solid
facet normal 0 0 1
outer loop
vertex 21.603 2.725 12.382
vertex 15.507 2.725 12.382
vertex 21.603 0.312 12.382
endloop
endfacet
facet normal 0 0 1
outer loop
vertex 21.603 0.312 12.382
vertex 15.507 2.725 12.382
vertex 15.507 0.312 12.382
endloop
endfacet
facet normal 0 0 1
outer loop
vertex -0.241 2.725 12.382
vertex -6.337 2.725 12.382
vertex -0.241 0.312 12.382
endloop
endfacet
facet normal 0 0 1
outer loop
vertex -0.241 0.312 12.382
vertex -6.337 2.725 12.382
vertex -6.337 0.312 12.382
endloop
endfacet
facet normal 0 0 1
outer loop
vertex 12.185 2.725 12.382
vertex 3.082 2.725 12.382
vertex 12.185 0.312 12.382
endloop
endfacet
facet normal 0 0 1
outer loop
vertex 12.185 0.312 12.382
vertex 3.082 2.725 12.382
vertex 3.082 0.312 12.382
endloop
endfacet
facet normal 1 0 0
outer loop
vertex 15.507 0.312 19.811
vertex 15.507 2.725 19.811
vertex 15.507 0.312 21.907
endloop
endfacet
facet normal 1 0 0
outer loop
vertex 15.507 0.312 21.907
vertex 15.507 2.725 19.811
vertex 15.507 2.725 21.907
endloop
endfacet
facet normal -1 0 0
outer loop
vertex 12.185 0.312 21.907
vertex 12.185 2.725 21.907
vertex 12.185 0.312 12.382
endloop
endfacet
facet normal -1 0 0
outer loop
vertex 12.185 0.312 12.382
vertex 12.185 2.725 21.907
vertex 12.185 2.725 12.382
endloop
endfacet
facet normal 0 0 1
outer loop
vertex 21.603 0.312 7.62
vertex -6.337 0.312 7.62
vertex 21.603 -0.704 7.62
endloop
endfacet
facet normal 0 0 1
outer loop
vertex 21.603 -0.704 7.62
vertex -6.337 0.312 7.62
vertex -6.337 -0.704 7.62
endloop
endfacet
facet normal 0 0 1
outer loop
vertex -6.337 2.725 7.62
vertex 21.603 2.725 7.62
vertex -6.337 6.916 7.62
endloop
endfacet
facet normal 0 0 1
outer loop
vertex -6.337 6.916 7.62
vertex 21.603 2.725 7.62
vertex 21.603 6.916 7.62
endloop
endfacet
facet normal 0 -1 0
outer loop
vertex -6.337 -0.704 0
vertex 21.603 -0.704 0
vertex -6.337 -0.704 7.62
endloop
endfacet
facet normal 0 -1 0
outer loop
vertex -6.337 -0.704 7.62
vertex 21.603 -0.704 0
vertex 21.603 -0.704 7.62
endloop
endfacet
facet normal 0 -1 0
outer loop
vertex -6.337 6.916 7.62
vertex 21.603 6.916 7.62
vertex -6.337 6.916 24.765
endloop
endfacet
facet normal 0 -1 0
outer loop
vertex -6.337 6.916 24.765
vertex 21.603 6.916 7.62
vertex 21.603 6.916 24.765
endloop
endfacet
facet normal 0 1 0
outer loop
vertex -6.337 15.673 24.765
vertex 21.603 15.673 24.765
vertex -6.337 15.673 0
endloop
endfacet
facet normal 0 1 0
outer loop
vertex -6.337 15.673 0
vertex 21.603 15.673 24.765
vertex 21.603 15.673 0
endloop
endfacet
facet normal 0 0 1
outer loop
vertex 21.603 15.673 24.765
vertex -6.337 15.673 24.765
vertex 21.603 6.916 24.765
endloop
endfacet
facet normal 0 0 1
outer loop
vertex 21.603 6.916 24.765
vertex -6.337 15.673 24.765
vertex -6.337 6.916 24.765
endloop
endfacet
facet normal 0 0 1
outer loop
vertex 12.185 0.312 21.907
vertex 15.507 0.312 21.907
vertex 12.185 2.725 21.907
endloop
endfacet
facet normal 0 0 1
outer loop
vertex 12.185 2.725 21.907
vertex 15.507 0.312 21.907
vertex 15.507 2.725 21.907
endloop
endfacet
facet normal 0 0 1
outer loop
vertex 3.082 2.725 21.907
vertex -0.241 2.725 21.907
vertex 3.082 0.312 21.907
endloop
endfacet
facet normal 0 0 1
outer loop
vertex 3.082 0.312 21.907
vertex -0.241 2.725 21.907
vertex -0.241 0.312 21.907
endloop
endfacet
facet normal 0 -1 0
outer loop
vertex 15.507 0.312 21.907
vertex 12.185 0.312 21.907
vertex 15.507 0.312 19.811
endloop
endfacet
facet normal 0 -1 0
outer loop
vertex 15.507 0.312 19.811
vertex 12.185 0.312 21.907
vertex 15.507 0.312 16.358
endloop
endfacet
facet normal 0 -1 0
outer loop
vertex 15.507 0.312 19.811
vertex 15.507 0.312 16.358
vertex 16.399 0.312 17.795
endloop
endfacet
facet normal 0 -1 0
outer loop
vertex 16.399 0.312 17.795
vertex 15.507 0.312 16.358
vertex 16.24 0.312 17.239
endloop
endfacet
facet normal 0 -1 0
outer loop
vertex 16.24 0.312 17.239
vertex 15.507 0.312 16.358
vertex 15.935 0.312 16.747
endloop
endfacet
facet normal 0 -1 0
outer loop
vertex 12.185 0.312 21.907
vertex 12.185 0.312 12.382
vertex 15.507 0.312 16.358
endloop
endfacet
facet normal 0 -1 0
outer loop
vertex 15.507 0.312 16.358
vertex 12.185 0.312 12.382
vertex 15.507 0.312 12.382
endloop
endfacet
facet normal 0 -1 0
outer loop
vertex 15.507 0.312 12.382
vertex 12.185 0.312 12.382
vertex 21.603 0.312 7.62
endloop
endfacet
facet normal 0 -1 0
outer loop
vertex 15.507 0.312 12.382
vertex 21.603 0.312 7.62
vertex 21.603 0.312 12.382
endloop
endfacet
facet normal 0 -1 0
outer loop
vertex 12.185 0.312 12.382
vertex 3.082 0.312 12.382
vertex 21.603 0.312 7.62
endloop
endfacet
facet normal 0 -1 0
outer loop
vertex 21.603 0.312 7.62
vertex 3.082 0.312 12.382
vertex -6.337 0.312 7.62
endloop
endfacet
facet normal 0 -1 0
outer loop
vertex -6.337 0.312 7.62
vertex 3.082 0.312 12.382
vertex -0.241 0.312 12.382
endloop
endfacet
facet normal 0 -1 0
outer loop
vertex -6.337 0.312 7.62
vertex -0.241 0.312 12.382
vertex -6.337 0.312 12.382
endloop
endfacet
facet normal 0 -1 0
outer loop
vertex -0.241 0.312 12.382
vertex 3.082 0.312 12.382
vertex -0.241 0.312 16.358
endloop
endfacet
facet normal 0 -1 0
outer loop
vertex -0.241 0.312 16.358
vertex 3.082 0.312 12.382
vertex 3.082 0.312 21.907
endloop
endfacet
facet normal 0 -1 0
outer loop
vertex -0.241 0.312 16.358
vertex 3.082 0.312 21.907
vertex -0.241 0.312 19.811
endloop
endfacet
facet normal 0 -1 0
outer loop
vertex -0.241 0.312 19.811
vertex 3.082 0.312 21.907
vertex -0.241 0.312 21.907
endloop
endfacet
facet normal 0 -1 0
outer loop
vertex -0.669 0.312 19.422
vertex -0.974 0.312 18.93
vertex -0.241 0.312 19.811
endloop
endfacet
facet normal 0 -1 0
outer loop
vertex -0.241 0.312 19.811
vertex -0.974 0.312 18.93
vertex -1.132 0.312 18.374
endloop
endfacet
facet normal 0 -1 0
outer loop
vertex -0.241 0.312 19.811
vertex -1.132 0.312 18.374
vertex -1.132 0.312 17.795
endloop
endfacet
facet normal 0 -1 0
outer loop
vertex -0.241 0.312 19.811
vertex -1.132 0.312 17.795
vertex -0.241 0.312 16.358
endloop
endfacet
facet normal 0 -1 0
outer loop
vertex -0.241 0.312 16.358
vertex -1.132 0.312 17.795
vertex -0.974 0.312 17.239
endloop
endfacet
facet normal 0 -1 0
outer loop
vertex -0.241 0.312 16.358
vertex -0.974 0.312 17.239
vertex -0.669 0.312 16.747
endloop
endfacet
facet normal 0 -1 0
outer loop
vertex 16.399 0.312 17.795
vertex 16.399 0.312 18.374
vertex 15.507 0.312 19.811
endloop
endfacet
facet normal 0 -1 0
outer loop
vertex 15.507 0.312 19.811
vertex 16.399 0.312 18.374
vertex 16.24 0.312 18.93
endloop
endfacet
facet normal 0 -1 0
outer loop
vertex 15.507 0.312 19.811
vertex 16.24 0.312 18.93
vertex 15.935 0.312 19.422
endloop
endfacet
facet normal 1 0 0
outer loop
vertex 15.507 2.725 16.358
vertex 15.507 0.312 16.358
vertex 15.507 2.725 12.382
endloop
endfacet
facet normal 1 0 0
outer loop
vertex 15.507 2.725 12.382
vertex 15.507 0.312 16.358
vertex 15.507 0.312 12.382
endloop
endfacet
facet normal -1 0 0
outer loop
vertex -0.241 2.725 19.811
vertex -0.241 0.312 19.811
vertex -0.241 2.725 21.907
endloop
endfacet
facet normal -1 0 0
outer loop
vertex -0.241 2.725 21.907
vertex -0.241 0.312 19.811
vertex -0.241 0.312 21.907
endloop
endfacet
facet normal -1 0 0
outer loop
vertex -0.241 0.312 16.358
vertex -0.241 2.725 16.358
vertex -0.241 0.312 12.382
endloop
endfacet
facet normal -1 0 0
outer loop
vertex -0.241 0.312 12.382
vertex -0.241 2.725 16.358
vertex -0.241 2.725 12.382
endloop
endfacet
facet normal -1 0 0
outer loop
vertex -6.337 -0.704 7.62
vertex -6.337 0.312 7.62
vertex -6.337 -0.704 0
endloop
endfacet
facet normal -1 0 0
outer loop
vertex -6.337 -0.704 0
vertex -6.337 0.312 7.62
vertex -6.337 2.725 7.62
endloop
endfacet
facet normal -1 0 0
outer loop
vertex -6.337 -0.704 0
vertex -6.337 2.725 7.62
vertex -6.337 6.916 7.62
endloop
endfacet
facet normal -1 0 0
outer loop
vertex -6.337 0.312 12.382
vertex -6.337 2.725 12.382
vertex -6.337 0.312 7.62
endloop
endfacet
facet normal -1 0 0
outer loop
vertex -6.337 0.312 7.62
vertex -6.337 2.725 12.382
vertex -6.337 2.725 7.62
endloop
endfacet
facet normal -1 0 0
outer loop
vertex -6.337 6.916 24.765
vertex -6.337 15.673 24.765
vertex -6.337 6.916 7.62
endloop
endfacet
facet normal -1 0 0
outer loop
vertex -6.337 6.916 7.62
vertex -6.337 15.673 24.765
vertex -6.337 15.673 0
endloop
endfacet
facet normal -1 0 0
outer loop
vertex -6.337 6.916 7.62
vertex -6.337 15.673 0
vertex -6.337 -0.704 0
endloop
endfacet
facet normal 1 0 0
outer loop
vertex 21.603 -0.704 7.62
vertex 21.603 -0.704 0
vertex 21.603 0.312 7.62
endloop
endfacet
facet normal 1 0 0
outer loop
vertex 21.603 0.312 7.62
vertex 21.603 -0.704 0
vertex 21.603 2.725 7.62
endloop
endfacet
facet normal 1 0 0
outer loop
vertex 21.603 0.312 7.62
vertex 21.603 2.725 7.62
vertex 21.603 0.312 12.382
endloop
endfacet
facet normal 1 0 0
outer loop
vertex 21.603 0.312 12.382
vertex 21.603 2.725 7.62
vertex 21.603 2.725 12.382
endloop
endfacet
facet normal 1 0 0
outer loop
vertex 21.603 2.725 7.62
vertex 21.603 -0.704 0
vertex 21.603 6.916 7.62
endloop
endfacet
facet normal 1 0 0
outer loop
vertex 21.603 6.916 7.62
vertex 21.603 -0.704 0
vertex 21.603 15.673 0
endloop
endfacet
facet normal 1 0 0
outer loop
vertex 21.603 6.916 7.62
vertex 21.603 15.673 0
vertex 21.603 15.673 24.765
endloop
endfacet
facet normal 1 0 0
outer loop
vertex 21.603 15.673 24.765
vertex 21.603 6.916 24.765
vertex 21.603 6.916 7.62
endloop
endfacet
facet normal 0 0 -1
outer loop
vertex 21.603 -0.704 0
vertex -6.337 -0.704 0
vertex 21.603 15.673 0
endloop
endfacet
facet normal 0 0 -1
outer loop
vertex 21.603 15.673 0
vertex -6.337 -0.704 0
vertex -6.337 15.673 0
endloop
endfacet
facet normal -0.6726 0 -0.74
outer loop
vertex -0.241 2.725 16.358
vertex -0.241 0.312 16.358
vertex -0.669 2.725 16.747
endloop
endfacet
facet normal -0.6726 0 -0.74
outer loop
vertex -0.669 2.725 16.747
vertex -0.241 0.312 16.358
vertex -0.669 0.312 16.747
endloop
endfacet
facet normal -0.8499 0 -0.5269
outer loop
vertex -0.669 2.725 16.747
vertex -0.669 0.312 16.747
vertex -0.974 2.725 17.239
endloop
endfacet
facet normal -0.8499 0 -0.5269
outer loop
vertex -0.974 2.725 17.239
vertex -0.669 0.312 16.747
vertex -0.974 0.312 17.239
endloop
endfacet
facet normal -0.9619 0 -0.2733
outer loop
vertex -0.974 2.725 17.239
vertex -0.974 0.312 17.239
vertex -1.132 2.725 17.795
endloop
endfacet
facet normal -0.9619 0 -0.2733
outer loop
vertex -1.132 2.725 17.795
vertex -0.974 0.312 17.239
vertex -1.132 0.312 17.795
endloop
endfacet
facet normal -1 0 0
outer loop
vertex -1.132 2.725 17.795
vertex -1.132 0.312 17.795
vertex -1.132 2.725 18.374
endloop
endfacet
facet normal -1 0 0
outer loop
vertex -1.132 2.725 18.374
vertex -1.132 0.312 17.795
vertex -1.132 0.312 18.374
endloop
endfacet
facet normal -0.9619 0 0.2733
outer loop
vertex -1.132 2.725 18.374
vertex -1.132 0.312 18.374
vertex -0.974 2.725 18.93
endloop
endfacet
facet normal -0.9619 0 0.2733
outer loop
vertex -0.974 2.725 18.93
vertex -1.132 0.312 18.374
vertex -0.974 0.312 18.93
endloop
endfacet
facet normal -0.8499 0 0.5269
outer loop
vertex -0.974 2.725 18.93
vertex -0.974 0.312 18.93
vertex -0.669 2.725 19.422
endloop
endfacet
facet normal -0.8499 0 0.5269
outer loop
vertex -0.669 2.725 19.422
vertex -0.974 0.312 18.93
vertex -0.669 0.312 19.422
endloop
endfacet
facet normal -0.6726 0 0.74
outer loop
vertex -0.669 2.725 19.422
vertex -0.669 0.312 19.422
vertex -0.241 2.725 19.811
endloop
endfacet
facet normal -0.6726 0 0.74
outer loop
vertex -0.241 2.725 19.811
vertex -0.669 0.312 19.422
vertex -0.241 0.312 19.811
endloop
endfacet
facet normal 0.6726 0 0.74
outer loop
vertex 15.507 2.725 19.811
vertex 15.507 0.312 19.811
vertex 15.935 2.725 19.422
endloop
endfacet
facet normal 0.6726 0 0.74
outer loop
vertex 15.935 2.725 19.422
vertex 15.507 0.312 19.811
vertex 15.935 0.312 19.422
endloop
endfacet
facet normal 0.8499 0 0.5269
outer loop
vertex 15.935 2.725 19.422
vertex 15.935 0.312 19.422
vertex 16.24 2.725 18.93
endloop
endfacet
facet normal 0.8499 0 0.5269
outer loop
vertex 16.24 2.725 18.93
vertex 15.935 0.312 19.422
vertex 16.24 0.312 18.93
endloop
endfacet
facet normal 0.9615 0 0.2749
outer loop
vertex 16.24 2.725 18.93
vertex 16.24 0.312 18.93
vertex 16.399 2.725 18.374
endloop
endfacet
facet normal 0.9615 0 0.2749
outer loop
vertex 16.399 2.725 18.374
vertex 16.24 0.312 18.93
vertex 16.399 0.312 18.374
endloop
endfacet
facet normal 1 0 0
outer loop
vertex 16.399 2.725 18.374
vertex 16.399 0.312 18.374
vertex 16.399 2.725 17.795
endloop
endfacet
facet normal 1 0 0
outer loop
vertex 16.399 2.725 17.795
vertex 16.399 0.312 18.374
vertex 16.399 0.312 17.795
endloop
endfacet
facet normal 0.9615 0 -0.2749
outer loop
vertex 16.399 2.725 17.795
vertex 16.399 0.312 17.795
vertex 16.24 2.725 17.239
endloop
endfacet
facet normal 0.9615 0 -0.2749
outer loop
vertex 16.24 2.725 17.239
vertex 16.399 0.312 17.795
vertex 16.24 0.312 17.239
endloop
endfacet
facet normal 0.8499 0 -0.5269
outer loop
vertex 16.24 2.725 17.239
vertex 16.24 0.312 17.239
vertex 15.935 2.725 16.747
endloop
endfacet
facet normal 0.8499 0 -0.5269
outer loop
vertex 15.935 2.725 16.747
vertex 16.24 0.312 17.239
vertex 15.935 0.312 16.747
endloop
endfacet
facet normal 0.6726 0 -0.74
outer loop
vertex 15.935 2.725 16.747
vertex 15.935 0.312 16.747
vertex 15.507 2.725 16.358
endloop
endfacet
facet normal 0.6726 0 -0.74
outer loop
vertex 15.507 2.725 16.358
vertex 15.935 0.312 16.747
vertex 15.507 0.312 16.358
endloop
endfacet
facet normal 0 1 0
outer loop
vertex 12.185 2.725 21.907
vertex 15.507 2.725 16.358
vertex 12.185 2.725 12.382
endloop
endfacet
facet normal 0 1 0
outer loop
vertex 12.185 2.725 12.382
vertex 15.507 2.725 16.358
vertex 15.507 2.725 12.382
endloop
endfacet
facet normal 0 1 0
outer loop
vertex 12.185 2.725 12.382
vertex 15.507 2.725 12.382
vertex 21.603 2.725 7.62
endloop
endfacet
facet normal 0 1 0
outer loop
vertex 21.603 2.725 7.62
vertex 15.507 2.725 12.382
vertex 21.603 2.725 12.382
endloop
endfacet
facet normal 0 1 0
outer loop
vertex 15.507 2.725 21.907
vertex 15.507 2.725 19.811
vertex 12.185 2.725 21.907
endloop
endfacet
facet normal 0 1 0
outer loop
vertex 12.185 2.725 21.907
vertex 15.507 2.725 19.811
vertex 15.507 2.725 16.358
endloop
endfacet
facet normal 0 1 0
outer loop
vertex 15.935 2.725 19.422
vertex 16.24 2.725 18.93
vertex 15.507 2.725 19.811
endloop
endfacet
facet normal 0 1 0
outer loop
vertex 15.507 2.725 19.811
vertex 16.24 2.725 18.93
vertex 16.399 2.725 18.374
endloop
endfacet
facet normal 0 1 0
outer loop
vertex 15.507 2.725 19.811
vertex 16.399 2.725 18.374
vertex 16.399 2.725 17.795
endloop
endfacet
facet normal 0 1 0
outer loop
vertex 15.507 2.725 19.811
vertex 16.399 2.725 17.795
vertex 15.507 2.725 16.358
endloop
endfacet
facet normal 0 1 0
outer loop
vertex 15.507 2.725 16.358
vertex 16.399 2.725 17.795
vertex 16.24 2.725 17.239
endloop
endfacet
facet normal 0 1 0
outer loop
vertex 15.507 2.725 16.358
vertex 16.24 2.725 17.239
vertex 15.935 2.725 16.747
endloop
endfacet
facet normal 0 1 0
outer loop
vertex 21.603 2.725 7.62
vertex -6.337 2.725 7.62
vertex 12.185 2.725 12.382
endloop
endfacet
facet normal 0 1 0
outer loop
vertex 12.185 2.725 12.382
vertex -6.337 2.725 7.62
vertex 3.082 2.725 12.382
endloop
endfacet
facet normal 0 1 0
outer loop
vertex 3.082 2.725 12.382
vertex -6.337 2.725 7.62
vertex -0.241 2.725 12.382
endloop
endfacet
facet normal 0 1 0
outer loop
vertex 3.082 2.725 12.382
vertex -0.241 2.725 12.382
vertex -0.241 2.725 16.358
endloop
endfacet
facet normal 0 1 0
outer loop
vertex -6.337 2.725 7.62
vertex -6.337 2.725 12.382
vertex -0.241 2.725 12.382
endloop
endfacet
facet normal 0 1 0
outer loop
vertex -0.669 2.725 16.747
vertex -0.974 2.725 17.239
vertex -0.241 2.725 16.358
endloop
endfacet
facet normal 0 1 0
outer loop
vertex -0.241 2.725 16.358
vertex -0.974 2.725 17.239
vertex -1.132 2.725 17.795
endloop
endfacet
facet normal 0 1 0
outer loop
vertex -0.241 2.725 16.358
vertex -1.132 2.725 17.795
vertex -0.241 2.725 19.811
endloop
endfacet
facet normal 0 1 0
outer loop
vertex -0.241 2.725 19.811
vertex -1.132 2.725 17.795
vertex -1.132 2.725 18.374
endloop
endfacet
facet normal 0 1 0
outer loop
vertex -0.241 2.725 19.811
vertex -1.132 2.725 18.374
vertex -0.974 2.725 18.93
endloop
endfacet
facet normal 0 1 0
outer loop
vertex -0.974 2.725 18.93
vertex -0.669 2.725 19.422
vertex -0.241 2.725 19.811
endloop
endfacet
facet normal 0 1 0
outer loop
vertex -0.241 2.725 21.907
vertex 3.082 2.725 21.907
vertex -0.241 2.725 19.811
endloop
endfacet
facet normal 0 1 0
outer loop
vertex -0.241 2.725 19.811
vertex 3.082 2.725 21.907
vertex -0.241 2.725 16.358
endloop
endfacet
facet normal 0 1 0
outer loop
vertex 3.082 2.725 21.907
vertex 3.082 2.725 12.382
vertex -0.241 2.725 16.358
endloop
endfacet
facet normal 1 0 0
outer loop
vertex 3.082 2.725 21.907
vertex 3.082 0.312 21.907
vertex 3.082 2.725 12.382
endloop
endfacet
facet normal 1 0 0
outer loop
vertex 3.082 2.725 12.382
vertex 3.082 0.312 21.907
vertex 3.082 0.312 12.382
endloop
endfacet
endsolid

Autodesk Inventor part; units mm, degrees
ref_plane "YZ Plane" through (0, 0, 0) normal (1, 0, 0) x (0, 1, 0)
ref_plane "XZ Plane" through (0, 0, 0) normal (0, 1, 0) x (-1, 0, 0)
ref_plane "XY Plane" through (0, 0, 0) normal (0, 0, 1) x (1, 0, 0)
sketch "Sketch1" plane through (0, 0, 0) normal (0, 0, 1) x (1, 0, 0)
  line L0 (-6.3366, 6.9163) -> (21.6034, 6.9163)
  line L1 (21.6034, 6.9163) -> (21.6034, -8.3237)
  line L2 (21.6034, -8.3237) -> (-6.3366, -8.3237)
  line L3 (-6.3366, -8.3237) -> (-6.3366, 6.9163)
  point P0 (0, 0)
  dimension "d0" = 27.94
  dimension "d1" = 15.24
extrude "Extrusion1" add sketch "Sketch1" along normal blind 7.62
sketch "Sketch2" plane through (0, 0, 7.62) normal (0, 0, 1) x (1, 0, 0)
  line L0 (-6.3366, 6.9163) -> (-6.3366, -8.3237) projected
  line L1 (21.6034, -8.3237) -> (21.6034, 6.9163) projected
  line L2 (21.6034, 0.3123) -> (21.6034, 2.7253)
  line L3 (-6.3366, 2.7253) -> (-6.3366, 0.3123)
  line L4 (21.6034, 6.9163) -> (-6.3366, 6.9163) projected
  line L5 (-6.3366, -8.3237) -> (21.6034, -8.3237) projected
  line L6 (0.9631, 2.7253) -> (-0.2406, 2.7253)
  line L7 (-0.2406, 0.3123) -> (0.9631, 0.3123)
  line L8 (-0.2406, 0.3123) -> (-0.2406, 2.7253)
  line L9 (-0.2406, 0.3123) -> (3.0821, 0.3123)
  line L10 (3.0821, 0.3123) -> (3.0821, 2.7253)
  line L11 (3.0821, 2.7253) -> (-0.2406, 2.7253)
  line L12 (-0.2406, 2.7253) -> (-0.2406, 0.3123)
  line L13 (14.3038, 2.7253) -> (15.5074, 2.7253)
  line L14 (15.5074, 0.3123) -> (14.3038, 0.3123)
  line L15 (15.5074, 0.3123) -> (15.5074, 2.7253)
  line L16 (15.5074, 0.3123) -> (12.1847, 0.3123)
  line L17 (12.1847, 0.3123) -> (12.1847, 2.7253)
  line L18 (12.1847, 2.7253) -> (15.5074, 2.7253)
  line L19 (15.5074, 2.7253) -> (15.5074, 0.3123)
  line L20 (-6.3366, -0.7037) -> (21.6034, -0.7037)
  line L21 (-6.3366, 2.7253) -> (21.6034, 2.7253)
  line L22 (21.6034, 2.7253) -> (21.6034, 0.3123)
  line L23 (21.6034, 0.3123) -> (-6.3366, 0.3123)
  line L24 (-6.3366, 0.3123) -> (-6.3366, 2.7253)
  point P0 (0, 0)
  point P1 (-0.2406, 1.5188)
  point P2 (15.2669, 0)
  point P3 (15.5074, 1.5188)
  dimension "d6" = 6.096
extrude "Extrusion2" add sketch "Sketch2" along normal blind 8.7376 contours L6 L11 L10 L9 L7 L8 | L15 L14 L16 L17 L18 L13
sketch "Sketch3" plane through (-0.2406, 2.7253, 7.62) normal (0, 1, 0) x (1, 0, 0)
  line L0 (3.3227, -8.7376) -> (0, -8.7376) projected
  line L1 (3.3227, -8.7376) -> (0, -8.7376)
  line L2 (-6.096, 7.62) -> (21.844, 7.62) projected
  line L3 (3.3227, -11.3552) -> (3.3227, -8.7376)
  line L4 (12.4253, -8.7376) -> (15.748, -8.7376)
  line L5 (12.4253, -8.7376) -> (15.748, -8.7376)
  line L6 (12.4253, -11.3552) -> (12.4253, -8.7376)
  line L7 (15.748, 0) -> (15.748, -8.7376) projected
  arc A0 (15.748, -12.1912) -> (15.748, -8.7376) centre (14.5683, -10.4644) ccw
  line L8 (15.748, -12.1912) -> (12.4253, -12.1912)
  line L9 (12.4253, -12.1912) -> (12.4253, -8.7376)
  line L10 (3.3227, -8.7376) -> (0, -8.7376)
  line L11 (3.3227, -8.7376) -> (0, -8.7376)
  line L12 (3.3227, -11.3552) -> (3.3227, -8.7376)
  arc A1 (0, -8.7376) -> (0, -12.1912) centre (1.1797, -10.4644) ccw
  line L13 (0, -12.1912) -> (3.3227, -12.1912)
  line L14 (3.3227, -12.1912) -> (3.3227, -8.7376)
  point P0 (0.2406, 7.62)
  point P1 (3.0718, -11.3552)
extrude "Extrusion4" add sketch "Sketch2" along normal blind 14.2875 contours L6 L11 L10 L9 L7 L8 | L15 L14 L16 L17 L18 L13
sketch "Sketch4" plane through (-6.3366, 6.9163, 0) normal (0, 1, 0) x (1, 0, 0)
  point P0 (6.3366, 0)
sketch "Sketch5" plane through (0, 0, 7.62) normal (0, 0, 1) x (1, 0, 0)
  line L0 (21.6034, 6.9163) -> (-6.3366, 6.9163) projected
  line L1 (-6.3366, 15.6735) -> (21.6034, 15.6735)
  line L2 (21.6034, 15.6735) -> (21.6034, 6.9163)
  line L3 (21.6034, 6.9163) -> (-6.3366, 6.9163)
  line L4 (-6.3366, 6.9163) -> (-6.3366, 15.6735)
  point P0 (0, 0)
extrude "Extrusion5" add sketch "Sketch5" along normal blind 17.145 and the other way blind 7.62
extrude "Extrusion6" cut sketch "Sketch2" against normal blind 25.4 contours L20 L1 L5 L0
extrude "Extrusion7" add sketch "Sketch2" along normal blind 4.7625 contours L21 L8 L23 L0 | L1 L23 L15 L21 | L21 L17 L23 L10
extrude "Extrusion8" add sketch "Sketch3" against normal up to surface (2.413 mm away)
properties part number "Attachment3"
